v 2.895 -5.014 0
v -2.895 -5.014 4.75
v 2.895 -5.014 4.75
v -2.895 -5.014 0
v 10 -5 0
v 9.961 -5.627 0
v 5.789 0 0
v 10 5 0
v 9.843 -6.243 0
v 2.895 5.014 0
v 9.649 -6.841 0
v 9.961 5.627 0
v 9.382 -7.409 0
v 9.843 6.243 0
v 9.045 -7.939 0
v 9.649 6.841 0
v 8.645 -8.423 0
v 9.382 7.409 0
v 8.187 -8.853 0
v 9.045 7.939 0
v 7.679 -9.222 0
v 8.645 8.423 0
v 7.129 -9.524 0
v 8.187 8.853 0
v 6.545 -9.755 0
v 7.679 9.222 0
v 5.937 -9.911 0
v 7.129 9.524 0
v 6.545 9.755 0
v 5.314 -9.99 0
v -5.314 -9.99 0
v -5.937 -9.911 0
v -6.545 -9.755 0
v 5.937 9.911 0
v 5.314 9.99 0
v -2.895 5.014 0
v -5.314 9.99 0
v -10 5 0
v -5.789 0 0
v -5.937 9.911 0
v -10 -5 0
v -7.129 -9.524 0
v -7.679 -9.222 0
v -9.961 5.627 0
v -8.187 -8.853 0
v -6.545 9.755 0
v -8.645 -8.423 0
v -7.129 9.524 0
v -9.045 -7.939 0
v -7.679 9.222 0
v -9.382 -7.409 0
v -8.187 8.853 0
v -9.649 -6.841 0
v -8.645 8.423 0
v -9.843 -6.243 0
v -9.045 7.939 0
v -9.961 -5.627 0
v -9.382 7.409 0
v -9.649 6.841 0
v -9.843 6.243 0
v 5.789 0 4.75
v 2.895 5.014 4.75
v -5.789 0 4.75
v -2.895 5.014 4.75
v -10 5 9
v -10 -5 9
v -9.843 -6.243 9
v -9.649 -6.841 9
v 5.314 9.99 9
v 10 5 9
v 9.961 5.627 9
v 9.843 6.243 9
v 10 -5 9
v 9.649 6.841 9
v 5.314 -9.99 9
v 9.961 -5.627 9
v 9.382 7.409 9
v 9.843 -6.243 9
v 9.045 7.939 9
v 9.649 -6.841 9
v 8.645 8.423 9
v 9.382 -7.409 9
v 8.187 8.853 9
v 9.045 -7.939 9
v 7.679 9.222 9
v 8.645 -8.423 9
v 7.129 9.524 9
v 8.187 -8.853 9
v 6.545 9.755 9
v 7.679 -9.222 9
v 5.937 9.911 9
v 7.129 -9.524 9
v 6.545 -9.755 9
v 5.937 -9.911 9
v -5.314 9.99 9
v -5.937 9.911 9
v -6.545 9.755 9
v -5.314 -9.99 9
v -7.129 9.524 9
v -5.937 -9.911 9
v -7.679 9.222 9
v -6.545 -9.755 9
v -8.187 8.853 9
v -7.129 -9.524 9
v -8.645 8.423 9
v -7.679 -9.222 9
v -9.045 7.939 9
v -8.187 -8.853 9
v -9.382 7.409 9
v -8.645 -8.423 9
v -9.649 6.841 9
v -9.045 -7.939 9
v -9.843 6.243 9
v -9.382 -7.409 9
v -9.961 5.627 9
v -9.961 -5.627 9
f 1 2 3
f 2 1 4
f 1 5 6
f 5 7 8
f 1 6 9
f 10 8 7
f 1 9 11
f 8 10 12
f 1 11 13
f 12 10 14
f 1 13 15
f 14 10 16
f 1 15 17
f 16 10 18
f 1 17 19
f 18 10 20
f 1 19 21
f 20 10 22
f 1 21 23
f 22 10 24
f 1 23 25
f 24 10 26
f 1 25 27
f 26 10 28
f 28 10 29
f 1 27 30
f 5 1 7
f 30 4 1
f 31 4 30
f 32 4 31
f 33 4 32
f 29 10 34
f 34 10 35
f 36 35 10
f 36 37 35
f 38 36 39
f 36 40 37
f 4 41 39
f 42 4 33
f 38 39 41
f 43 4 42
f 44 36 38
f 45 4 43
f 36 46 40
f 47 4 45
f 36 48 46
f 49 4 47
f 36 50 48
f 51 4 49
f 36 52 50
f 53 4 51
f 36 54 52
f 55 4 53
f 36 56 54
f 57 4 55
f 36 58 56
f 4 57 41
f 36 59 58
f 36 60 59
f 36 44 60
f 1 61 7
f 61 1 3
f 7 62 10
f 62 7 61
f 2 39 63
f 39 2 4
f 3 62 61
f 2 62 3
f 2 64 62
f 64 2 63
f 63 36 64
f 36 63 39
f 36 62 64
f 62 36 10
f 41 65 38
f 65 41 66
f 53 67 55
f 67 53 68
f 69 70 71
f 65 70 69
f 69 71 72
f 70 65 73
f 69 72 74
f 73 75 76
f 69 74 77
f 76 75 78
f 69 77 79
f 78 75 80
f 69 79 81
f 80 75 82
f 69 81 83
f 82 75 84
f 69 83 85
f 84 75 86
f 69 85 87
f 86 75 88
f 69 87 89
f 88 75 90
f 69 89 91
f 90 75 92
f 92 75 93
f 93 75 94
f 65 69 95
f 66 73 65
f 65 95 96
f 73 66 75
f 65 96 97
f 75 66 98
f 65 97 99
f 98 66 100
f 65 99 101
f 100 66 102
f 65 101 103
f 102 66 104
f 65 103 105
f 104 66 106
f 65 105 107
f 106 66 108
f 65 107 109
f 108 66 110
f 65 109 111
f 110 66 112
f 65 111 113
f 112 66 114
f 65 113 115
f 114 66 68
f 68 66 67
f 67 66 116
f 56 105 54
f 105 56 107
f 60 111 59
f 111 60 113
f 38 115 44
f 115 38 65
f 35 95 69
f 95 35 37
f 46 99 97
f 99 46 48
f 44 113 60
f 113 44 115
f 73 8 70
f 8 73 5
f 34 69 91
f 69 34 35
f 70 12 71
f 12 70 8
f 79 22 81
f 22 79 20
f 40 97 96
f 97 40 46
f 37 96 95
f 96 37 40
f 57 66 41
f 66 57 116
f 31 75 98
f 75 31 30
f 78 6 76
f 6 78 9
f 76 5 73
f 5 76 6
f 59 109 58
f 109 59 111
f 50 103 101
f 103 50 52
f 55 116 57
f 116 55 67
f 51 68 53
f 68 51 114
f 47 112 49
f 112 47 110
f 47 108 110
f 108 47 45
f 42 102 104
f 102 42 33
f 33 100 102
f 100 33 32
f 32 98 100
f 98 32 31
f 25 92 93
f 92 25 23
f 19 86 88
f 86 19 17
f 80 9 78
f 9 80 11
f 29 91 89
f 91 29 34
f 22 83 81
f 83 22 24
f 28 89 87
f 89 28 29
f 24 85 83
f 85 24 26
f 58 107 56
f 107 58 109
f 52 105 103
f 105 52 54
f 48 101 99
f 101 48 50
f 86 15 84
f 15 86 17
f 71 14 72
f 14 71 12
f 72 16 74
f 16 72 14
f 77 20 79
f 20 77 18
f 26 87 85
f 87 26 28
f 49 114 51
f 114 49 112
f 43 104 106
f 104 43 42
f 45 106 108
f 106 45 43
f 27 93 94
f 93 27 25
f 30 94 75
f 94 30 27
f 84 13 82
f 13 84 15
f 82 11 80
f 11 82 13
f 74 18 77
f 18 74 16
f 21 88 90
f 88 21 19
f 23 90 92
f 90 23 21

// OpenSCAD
$fn = 50;


difference() {
	union() {
		hull() {
			translate(v = [-5.0000000000, 5.0000000000, 0]) {
				cylinder(h = 9, r = 5);
			}
			translate(v = [5.0000000000, 5.0000000000, 0]) {
				cylinder(h = 9, r = 5);
			}
			translate(v = [-5.0000000000, -5.0000000000, 0]) {
				cylinder(h = 9, r = 5);
			}
			translate(v = [5.0000000000, -5.0000000000, 0]) {
				cylinder(h = 9, r = 5);
			}
		}
	}
	union() {
		translate(v = [0, 0, 0]) {
			rotate(a = [0, 0, 0]) {
				difference() {
					union() {
						linear_extrude(height = 4.7500000000) {
							polygon(points = [[5.7892500000, 0.0000000000], [2.8946250000, 5.0136375689], [-2.8946250000, 5.0136375689], [-5.7892500000, 0.0000000000], [-2.8946250000, -5.0136375689], [2.8946250000, -5.0136375689]]);
						}
					}
					union();
				}
			}
		}
	}
}
